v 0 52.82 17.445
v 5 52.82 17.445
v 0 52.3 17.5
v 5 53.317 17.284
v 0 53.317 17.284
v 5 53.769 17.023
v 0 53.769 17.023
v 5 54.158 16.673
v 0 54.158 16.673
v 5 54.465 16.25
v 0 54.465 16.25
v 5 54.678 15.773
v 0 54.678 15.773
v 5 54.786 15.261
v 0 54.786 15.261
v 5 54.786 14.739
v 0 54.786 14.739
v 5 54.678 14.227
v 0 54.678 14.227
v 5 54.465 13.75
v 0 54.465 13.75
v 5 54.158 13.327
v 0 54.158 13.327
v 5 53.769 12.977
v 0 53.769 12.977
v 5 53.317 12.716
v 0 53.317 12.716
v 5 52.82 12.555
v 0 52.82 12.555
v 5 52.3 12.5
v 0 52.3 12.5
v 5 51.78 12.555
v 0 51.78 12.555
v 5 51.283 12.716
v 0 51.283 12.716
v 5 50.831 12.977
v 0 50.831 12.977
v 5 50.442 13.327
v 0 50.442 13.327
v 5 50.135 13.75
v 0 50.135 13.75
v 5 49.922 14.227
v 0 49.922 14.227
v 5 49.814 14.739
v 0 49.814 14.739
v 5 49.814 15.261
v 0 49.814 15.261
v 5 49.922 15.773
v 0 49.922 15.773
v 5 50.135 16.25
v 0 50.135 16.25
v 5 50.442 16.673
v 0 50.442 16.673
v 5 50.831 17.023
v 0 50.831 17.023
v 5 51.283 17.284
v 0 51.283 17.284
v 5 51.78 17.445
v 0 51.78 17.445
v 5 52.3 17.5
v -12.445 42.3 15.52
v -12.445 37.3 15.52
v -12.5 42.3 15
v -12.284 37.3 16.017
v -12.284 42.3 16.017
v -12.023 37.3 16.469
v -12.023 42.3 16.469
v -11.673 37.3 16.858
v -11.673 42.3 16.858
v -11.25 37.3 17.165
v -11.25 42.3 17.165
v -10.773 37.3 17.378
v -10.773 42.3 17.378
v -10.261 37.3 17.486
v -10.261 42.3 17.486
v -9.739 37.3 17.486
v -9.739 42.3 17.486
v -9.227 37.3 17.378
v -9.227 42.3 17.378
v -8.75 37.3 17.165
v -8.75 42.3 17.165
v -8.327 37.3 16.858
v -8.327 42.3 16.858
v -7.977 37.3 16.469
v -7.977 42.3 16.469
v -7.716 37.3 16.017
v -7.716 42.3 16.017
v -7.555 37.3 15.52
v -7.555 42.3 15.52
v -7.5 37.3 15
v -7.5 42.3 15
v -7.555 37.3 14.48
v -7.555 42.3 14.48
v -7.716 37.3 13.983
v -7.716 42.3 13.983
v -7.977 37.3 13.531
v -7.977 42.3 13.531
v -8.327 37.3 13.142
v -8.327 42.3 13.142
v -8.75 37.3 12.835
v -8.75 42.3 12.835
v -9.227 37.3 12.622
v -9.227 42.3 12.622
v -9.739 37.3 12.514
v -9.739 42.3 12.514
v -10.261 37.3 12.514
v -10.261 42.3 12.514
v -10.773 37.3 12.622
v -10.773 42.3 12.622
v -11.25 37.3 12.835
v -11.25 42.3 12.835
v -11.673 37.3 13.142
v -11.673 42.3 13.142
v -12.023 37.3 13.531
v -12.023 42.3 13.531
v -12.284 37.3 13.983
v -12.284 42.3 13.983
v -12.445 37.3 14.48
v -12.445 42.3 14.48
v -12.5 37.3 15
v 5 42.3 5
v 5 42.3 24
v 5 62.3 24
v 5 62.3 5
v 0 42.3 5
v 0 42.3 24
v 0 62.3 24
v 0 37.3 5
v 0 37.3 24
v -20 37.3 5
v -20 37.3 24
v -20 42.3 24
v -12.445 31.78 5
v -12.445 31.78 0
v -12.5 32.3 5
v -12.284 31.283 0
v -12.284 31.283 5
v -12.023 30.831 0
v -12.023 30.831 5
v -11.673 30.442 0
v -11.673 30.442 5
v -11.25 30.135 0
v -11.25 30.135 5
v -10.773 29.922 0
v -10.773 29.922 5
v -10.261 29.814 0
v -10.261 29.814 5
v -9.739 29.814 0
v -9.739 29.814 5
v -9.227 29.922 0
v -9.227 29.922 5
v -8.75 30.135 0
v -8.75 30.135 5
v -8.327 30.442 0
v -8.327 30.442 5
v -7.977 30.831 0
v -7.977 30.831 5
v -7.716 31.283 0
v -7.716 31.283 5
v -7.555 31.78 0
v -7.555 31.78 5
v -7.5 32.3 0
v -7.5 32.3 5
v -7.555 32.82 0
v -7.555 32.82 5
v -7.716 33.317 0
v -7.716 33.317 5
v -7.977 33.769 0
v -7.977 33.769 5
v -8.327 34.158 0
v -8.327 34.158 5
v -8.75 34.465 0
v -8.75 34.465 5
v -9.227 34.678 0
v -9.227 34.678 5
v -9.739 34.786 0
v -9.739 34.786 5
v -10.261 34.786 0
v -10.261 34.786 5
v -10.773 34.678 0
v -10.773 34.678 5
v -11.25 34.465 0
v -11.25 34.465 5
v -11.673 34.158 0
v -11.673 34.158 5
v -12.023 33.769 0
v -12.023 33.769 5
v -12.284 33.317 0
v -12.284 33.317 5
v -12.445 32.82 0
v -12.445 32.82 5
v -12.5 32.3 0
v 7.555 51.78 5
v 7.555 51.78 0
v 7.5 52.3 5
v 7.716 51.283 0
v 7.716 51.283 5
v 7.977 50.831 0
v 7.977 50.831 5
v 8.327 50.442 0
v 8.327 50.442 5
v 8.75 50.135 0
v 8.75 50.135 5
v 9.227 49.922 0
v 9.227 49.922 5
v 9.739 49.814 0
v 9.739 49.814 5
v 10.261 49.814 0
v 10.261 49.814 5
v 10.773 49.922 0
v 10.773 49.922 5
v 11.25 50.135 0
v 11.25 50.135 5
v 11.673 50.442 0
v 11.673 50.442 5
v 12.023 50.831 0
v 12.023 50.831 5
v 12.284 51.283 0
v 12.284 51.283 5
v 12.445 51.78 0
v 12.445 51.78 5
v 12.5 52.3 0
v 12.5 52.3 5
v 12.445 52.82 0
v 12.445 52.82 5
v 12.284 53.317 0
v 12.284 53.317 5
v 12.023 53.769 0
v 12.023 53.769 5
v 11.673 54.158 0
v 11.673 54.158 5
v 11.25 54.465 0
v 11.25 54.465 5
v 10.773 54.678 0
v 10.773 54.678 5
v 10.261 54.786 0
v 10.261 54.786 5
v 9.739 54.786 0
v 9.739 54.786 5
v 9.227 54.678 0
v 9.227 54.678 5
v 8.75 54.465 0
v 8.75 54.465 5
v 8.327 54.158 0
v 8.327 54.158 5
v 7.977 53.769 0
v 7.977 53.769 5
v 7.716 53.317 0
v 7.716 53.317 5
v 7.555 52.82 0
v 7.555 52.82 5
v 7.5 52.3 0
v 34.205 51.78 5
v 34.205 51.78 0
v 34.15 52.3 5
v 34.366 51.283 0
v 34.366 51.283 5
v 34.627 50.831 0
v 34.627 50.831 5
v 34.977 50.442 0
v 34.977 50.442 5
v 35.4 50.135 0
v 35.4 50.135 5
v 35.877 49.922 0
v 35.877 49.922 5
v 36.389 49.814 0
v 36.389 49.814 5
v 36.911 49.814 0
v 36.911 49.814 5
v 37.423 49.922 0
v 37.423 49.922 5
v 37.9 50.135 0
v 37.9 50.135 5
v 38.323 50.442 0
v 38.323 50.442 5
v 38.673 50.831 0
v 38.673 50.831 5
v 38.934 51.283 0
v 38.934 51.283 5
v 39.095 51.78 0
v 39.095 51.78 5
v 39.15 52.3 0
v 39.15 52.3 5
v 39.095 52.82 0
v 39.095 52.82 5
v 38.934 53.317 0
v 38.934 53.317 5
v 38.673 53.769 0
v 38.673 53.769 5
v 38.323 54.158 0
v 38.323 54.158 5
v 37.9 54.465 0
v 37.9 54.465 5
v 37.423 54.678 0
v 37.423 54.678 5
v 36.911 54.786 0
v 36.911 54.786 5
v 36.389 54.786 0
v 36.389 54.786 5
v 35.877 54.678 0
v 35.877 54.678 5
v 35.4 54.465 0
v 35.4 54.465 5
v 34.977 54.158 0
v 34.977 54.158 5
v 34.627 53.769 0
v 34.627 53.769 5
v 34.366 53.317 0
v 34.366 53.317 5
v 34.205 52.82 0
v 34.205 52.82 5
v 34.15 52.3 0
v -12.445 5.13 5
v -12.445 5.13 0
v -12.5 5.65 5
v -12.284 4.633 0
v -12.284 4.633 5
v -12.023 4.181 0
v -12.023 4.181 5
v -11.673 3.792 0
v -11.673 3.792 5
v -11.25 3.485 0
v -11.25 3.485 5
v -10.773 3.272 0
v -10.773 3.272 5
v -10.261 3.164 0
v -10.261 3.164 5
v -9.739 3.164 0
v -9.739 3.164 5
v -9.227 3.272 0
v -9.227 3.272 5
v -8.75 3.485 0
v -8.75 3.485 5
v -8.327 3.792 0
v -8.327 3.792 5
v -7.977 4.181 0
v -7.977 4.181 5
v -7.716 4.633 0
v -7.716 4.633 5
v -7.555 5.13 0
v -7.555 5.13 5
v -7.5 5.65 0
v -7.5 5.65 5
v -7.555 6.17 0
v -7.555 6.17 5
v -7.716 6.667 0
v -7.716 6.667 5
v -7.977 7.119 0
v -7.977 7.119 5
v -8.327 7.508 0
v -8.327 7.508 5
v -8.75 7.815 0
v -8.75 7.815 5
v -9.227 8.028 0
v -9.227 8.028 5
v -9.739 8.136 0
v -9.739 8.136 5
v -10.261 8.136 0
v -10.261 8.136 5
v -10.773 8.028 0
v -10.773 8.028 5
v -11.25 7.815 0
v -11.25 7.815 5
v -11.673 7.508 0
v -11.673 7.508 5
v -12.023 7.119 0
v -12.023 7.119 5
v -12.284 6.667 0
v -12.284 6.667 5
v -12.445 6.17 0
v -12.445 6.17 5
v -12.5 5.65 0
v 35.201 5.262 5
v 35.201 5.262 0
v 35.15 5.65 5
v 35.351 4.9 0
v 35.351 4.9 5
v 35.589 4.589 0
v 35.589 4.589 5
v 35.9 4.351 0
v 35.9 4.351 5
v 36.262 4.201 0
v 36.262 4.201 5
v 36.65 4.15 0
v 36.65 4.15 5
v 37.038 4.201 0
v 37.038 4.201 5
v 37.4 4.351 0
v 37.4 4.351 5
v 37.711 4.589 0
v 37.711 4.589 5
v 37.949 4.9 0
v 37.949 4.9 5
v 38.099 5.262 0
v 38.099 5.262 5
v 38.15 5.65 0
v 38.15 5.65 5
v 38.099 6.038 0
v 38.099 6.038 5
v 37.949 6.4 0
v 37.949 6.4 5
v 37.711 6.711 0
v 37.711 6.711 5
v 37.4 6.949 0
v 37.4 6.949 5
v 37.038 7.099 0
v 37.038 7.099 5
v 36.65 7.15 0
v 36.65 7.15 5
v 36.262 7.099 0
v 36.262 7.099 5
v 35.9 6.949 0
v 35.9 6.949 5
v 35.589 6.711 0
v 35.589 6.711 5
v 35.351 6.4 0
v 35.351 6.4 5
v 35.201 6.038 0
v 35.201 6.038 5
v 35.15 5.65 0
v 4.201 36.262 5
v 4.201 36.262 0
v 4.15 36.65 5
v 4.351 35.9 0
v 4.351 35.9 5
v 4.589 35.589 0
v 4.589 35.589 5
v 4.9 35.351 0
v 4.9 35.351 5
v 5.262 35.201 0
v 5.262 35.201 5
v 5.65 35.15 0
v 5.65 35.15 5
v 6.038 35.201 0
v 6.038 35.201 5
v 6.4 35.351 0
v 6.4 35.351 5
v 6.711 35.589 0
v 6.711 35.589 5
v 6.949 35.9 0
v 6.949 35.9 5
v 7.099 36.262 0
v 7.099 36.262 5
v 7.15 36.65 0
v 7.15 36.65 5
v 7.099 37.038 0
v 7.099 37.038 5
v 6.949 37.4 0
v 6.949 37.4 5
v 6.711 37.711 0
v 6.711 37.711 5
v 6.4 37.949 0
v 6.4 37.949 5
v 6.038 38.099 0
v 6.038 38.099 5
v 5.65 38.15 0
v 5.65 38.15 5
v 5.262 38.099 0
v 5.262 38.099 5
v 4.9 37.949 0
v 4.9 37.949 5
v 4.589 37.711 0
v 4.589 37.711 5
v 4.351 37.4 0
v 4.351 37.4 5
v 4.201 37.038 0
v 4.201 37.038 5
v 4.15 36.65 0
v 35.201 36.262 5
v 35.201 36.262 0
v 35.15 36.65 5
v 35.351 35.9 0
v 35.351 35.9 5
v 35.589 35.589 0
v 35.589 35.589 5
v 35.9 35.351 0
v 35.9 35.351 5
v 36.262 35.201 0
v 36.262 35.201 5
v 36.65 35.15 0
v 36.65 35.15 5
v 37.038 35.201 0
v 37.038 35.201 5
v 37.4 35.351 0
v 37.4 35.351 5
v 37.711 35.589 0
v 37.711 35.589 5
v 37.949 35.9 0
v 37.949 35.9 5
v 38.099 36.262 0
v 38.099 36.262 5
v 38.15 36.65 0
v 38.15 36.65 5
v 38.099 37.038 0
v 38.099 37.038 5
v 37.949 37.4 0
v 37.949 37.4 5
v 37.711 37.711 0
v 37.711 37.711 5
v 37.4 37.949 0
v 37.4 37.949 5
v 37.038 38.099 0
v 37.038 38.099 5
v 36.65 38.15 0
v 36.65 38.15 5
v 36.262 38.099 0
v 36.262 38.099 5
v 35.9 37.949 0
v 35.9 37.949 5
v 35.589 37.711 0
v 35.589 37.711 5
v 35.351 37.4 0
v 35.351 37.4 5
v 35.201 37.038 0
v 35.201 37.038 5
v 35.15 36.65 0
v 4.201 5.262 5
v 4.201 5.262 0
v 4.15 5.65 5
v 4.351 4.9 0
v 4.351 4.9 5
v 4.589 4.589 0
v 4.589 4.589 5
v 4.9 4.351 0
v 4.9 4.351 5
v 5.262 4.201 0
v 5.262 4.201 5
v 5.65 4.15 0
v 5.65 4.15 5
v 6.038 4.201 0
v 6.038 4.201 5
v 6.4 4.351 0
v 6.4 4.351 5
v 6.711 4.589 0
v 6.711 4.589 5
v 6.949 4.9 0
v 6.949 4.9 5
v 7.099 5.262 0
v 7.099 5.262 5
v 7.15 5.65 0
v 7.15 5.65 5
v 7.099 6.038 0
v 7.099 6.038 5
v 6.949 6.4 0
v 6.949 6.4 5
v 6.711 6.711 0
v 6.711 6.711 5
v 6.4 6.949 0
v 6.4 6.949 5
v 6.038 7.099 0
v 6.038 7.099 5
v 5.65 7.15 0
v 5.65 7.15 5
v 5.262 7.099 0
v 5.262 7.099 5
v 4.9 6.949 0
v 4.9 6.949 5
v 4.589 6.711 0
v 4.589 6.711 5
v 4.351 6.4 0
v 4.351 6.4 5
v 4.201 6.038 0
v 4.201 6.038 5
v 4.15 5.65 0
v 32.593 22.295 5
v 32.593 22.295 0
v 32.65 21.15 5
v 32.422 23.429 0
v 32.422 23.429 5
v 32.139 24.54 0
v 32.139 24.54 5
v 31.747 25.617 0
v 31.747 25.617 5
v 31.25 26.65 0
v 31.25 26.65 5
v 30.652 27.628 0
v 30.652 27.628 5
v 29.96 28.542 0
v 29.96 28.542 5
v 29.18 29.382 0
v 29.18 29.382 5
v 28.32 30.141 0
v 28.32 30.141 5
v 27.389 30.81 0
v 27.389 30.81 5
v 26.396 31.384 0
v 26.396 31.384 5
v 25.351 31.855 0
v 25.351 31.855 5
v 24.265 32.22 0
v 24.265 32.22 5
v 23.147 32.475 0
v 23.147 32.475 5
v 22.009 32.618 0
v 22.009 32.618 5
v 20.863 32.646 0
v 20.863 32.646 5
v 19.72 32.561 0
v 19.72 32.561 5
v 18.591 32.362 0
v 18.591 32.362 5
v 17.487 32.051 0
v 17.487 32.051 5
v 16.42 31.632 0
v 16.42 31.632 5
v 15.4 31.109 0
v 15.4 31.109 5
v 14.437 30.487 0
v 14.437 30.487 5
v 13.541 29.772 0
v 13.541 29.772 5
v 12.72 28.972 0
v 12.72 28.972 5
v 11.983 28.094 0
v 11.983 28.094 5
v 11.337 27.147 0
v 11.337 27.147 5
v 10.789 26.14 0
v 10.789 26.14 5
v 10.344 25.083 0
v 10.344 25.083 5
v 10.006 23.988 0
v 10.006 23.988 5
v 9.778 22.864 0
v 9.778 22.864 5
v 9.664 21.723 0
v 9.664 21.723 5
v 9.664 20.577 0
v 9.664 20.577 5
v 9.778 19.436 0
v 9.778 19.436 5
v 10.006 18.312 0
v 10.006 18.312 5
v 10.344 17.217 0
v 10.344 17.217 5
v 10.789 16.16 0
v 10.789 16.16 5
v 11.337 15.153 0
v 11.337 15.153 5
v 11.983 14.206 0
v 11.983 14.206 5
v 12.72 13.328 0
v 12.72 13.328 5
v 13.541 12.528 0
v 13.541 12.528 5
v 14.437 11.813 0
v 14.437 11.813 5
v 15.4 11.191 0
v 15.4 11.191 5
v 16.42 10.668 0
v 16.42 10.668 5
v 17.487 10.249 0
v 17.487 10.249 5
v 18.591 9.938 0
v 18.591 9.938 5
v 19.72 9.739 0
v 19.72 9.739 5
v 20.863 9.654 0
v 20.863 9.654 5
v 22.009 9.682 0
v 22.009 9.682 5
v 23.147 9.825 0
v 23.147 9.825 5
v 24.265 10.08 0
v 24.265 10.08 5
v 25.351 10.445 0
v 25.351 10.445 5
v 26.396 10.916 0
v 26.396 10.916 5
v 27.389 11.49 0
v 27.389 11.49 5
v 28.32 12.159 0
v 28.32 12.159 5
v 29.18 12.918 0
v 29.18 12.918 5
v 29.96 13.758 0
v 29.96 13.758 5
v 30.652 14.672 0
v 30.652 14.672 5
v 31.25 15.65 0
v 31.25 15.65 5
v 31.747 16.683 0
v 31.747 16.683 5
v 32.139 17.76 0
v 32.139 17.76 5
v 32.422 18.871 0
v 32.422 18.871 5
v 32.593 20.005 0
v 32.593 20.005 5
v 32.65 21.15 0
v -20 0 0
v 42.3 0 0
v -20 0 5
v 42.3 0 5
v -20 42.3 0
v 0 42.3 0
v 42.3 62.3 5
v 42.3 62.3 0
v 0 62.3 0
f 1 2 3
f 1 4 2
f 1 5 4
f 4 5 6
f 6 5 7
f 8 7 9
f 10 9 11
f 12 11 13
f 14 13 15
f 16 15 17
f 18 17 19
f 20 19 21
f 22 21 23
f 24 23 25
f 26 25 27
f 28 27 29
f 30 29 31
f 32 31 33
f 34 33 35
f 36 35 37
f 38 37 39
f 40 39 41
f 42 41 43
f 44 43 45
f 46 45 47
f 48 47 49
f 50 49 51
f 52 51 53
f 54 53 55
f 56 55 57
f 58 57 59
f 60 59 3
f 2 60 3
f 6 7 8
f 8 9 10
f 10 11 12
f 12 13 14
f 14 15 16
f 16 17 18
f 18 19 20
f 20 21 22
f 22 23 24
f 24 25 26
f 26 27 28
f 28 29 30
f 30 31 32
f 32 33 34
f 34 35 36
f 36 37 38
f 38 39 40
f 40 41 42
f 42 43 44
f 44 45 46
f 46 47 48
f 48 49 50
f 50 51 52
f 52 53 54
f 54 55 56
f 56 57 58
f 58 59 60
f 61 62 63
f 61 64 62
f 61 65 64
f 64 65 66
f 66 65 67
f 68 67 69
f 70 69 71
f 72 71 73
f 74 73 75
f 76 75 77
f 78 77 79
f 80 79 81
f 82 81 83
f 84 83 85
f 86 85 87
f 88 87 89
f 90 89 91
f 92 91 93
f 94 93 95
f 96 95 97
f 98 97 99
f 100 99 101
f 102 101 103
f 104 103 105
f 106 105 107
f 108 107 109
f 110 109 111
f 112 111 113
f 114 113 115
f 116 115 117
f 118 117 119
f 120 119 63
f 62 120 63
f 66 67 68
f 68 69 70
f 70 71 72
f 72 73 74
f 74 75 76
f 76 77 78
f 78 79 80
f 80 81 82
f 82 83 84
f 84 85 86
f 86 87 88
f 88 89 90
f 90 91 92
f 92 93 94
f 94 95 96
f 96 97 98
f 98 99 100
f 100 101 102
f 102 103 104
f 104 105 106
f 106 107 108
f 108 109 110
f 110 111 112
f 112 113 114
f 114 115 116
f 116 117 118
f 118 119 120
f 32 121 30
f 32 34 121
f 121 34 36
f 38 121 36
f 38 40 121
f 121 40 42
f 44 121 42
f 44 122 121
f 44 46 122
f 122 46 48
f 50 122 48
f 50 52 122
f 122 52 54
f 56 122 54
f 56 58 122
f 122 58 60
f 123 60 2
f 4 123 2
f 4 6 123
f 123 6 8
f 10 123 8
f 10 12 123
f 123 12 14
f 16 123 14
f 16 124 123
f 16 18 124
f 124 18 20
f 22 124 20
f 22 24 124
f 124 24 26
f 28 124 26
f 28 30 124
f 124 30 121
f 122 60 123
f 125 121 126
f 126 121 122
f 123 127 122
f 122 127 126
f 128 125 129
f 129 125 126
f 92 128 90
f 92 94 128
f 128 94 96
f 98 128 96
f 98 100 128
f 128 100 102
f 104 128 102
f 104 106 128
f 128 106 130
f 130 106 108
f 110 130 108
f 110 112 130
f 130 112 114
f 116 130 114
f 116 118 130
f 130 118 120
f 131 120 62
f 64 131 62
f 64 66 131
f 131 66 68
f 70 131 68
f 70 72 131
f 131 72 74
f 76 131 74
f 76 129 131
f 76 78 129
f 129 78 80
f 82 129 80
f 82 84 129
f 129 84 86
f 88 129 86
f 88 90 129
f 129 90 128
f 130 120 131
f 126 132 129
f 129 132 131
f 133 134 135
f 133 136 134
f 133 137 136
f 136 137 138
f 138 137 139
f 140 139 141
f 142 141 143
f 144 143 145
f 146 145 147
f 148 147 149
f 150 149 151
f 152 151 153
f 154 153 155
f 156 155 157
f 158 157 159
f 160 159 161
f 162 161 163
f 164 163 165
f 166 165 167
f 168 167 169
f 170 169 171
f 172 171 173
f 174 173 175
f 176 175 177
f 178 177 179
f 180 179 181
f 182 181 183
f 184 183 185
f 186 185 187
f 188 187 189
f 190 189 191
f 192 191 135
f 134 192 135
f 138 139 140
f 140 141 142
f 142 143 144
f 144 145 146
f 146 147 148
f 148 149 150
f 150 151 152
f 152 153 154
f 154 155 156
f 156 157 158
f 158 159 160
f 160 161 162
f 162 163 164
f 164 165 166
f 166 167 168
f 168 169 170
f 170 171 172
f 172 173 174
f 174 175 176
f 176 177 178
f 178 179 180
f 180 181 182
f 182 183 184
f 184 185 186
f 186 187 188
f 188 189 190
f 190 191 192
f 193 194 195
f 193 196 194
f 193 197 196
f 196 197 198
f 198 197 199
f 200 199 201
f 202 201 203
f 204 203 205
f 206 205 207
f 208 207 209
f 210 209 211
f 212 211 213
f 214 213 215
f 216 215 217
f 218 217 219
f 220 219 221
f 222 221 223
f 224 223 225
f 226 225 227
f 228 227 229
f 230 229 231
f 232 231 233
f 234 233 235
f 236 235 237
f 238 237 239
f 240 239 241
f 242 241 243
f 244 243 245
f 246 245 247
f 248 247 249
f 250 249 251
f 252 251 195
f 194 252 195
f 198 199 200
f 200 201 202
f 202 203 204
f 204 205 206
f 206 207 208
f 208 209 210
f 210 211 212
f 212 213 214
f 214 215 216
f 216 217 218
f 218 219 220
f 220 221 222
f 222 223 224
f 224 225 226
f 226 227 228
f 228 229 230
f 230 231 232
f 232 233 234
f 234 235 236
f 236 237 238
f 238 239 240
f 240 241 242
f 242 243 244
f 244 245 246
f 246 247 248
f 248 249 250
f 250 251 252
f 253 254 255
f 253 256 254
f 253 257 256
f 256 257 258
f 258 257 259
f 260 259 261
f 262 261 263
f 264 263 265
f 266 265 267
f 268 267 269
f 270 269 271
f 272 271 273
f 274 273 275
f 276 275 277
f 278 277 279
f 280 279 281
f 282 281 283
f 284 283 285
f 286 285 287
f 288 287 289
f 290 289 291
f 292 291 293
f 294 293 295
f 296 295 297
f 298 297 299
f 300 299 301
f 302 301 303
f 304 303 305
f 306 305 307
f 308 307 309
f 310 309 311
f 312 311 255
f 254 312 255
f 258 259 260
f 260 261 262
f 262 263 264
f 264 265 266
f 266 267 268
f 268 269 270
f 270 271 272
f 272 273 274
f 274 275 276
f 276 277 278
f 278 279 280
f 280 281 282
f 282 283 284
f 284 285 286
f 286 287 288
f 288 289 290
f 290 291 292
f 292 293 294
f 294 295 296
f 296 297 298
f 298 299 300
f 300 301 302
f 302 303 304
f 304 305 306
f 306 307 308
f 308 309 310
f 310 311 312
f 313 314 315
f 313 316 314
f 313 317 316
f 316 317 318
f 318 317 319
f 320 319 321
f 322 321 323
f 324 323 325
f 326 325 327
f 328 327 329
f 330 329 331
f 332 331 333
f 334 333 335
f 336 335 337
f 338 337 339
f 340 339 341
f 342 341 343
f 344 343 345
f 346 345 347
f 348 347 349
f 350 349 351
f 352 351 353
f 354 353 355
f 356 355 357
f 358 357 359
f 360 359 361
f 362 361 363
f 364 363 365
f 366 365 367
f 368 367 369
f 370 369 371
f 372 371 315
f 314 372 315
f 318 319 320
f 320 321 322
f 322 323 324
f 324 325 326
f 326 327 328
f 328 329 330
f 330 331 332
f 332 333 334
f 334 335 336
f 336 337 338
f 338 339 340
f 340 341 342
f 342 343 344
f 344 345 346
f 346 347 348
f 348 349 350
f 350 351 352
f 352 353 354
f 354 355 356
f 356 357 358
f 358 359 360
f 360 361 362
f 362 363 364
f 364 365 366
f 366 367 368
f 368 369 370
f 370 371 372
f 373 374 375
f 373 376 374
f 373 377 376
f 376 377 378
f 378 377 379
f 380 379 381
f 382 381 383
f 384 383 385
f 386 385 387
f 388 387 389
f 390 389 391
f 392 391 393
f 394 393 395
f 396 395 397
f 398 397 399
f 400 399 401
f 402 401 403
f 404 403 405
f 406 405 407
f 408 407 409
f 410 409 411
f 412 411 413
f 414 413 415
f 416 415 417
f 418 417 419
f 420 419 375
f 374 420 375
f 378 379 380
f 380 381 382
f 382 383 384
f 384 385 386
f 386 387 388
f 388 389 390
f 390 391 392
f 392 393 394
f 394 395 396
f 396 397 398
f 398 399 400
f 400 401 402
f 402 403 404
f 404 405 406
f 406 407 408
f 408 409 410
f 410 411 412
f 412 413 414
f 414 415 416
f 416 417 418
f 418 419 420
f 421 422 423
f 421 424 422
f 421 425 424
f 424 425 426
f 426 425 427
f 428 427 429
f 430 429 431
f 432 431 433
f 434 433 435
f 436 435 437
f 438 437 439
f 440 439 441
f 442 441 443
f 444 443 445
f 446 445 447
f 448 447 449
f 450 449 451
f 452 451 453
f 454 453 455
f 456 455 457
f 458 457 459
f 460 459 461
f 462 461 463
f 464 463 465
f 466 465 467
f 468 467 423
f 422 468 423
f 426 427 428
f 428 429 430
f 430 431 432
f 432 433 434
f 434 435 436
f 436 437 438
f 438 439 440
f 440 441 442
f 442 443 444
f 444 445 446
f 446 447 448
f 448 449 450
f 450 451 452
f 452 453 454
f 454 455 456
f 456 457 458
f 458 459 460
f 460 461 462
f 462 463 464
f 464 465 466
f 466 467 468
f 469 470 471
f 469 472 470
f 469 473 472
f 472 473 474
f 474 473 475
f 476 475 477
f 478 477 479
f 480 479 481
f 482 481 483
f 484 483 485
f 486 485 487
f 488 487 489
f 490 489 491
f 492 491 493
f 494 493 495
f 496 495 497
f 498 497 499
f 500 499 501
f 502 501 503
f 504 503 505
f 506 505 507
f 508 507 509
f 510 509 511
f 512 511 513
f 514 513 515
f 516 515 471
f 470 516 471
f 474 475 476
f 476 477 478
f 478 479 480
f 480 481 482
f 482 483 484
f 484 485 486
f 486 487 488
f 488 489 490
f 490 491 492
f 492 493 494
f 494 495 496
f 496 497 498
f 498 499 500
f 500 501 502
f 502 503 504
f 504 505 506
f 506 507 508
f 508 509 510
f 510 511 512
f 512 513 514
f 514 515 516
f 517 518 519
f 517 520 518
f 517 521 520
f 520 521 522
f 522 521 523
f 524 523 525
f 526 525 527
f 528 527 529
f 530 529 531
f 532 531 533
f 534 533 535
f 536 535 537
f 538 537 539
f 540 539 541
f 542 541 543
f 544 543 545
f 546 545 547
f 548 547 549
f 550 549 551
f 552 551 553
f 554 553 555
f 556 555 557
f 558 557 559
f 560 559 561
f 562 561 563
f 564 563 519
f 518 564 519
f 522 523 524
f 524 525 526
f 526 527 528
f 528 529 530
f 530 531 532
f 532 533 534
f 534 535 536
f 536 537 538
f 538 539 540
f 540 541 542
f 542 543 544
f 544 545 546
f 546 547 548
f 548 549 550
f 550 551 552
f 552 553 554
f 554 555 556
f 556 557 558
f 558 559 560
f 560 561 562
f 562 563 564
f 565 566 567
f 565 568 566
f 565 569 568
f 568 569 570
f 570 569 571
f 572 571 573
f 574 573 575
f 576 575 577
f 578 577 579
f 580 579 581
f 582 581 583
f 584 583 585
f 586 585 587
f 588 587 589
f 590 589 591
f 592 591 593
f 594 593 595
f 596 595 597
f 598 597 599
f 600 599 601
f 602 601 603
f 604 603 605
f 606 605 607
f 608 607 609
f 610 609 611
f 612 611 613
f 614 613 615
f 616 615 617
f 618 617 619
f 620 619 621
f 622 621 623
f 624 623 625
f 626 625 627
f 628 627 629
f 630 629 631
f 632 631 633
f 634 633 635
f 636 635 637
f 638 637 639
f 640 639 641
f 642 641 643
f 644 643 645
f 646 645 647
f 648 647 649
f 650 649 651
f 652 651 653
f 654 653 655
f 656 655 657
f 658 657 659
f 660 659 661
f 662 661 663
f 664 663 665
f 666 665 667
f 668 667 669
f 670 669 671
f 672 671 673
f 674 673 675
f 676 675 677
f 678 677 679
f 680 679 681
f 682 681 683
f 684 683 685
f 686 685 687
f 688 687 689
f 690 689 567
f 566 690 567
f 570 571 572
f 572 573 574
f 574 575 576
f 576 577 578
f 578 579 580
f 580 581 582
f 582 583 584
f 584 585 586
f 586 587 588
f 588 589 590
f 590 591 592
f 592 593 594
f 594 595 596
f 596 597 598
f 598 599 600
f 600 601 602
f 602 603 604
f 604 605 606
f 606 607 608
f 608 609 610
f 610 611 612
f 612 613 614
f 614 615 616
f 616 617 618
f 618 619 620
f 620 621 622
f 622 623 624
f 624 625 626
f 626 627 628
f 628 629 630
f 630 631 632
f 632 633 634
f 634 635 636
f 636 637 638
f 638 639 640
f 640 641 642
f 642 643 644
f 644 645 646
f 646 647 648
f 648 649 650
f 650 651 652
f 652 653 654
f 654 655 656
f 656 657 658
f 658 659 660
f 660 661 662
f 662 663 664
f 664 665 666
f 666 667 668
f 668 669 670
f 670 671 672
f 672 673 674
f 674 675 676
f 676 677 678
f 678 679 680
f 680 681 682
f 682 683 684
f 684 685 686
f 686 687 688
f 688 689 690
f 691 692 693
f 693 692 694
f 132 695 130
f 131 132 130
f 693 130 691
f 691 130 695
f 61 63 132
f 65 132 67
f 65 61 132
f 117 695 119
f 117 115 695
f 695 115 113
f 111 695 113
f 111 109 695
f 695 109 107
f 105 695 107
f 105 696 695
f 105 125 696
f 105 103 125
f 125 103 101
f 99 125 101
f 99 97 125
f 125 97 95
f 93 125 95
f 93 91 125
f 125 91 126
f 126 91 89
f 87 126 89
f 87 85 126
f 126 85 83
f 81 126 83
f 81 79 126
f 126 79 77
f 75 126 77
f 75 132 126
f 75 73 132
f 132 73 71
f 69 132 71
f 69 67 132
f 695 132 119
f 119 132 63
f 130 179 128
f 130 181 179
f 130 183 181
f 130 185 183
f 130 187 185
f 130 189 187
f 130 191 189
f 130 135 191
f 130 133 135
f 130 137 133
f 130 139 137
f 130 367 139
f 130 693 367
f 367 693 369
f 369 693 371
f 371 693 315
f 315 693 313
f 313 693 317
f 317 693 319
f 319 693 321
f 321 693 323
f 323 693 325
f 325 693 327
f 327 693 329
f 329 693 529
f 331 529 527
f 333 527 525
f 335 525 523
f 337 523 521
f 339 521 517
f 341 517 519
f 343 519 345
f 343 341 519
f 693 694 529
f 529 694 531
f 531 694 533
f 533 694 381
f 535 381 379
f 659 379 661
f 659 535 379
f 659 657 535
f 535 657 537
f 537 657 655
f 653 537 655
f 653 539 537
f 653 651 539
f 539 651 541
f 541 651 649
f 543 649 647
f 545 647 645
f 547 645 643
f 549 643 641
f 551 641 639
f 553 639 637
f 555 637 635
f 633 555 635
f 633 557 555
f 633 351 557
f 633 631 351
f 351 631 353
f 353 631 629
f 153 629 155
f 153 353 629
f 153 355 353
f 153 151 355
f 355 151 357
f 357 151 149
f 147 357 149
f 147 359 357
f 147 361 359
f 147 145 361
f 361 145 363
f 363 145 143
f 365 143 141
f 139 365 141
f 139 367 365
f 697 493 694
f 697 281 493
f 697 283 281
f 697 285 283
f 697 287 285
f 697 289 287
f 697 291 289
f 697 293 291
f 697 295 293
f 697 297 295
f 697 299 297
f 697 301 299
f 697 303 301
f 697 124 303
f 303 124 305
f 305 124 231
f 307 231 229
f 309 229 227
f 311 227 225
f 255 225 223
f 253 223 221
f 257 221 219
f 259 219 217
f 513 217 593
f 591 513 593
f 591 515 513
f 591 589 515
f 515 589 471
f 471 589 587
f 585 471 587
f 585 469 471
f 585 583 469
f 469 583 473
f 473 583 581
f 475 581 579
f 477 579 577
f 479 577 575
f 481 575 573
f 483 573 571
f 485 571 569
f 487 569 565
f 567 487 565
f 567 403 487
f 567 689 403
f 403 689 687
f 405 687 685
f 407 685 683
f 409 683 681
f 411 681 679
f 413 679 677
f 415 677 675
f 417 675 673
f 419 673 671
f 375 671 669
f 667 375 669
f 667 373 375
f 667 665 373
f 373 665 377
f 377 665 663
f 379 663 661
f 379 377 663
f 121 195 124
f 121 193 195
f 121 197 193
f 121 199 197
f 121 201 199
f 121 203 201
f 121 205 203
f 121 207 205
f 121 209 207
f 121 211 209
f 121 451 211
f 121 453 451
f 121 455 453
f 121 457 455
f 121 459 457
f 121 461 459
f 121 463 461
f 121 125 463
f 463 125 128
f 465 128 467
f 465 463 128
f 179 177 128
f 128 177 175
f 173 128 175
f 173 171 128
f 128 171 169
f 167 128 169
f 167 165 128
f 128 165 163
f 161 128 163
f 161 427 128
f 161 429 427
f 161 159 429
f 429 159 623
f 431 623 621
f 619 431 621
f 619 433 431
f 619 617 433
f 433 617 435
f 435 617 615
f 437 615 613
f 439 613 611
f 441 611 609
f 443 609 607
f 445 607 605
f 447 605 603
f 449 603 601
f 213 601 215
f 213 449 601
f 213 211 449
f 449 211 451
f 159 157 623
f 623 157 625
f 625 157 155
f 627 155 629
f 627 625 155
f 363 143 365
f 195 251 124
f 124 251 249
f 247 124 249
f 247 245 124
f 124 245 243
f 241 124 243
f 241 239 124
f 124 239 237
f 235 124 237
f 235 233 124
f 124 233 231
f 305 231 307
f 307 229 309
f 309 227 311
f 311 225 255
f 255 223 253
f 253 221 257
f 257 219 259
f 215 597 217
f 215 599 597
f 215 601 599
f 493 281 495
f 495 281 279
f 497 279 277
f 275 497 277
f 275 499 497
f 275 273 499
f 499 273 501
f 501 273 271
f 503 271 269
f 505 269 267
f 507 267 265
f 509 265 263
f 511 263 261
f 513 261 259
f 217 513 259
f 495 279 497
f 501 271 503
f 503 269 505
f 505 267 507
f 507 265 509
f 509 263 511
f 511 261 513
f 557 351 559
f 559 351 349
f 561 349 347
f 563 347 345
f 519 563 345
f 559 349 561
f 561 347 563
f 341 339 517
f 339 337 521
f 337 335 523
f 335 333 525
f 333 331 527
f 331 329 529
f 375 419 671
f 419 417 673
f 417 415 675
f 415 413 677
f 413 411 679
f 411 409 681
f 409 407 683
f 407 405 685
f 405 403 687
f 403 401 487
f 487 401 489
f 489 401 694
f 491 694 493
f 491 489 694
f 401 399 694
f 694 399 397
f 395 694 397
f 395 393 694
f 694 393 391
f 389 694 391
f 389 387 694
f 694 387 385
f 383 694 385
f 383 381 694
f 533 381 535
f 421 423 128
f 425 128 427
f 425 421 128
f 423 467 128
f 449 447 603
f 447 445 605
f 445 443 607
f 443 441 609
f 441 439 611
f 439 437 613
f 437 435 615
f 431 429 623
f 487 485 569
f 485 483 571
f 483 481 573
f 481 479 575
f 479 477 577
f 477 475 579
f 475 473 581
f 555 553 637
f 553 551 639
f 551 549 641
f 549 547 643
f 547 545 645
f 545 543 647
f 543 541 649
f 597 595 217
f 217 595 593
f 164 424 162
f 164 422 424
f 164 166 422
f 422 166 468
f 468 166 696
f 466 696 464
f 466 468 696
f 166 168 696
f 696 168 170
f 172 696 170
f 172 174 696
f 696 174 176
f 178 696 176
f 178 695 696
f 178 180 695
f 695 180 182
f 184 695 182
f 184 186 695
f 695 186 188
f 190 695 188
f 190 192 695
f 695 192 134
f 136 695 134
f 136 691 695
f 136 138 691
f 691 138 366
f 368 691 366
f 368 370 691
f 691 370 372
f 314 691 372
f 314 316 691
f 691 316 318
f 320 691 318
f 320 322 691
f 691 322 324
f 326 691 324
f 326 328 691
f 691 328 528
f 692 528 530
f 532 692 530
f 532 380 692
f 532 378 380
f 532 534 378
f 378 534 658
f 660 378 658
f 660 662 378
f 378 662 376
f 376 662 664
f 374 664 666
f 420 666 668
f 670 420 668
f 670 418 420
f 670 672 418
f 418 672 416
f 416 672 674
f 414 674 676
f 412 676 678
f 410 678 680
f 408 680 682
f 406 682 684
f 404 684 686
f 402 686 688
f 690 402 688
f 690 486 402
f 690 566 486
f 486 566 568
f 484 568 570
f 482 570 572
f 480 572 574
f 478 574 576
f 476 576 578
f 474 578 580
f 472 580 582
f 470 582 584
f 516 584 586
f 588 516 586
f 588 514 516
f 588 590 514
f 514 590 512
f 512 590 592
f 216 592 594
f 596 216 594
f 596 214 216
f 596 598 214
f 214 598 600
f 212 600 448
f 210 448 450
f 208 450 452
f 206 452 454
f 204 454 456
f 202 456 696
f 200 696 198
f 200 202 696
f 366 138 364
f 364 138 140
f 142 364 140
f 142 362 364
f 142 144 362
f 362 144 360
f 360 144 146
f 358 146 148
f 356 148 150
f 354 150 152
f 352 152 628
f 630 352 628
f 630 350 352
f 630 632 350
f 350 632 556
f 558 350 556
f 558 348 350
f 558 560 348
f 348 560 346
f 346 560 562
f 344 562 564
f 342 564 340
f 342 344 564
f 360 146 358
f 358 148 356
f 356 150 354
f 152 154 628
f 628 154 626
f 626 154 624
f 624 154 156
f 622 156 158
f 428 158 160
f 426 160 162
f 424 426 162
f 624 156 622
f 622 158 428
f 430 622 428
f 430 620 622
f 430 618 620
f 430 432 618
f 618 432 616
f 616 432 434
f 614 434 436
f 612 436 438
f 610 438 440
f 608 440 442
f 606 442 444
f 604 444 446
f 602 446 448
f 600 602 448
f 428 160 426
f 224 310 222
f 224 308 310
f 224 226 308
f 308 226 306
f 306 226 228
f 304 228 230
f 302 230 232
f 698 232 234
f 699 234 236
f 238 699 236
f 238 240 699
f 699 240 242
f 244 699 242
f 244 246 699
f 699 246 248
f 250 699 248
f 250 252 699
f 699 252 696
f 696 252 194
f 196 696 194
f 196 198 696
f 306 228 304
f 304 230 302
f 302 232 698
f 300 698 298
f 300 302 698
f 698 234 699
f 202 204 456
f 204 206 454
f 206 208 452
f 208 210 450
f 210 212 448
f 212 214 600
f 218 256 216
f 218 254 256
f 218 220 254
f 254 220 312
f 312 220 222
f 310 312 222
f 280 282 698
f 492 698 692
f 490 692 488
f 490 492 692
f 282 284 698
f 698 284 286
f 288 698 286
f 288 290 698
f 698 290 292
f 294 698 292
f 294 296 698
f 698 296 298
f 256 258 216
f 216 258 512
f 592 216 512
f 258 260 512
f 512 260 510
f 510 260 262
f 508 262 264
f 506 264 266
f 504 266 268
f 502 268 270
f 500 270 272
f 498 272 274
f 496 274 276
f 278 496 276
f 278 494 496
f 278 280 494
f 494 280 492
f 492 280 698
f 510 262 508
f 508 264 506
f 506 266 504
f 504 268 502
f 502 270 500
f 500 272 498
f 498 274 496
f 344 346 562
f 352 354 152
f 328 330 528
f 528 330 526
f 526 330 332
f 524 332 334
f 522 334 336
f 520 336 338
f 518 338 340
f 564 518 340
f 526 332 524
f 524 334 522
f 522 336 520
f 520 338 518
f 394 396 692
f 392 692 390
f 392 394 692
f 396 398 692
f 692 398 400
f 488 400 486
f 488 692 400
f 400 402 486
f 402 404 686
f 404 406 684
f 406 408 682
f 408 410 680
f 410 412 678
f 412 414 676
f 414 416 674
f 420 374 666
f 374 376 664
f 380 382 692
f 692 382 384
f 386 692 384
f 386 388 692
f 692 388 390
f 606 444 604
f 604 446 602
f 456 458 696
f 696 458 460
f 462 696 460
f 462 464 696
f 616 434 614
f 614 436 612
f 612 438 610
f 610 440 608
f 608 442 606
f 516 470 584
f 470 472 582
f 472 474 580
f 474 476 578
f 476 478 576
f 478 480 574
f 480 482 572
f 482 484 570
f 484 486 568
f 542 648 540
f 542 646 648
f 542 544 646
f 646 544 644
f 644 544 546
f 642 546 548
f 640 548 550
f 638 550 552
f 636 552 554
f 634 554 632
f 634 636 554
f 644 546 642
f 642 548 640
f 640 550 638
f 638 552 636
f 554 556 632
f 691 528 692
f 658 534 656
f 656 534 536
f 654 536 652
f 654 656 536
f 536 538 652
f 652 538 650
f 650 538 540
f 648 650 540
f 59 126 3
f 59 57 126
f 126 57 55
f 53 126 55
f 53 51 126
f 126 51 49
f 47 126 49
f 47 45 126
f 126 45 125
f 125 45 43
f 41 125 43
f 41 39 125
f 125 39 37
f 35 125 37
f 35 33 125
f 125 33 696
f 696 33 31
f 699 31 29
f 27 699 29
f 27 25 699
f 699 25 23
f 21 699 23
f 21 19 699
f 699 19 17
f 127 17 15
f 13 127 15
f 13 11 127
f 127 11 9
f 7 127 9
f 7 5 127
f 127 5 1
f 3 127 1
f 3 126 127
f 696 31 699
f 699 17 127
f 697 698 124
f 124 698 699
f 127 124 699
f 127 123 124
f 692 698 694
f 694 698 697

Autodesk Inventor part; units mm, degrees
ref_plane "YZ Plane" through (0, 0, 0) normal (1, 0, 0) x (0, 1, 0)
ref_plane "XZ Plane" through (0, 0, 0) normal (0, 1, 0) x (-1, 0, 0)
ref_plane "XY Plane" through (0, 0, 0) normal (0, 0, 1) x (1, 0, 0)
sketch "Sketch1" plane through (0, 0, 0) normal (0, 0, 1) x (1, 0, 0)
  line L0 (0, 0) -> (42.3, 0)
  line L1 (42.3, 0) -> (42.3, 42.3)
  line L2 (42.3, 42.3) -> (0, 42.3)
  line L3 (0, 42.3) -> (0, 0)
  circle A0 centre (21.15, 21.15) radius 11.5
  line L4 (0, 0.3) -> (0, 42.3)
  line L5 (0, 42.3) -> (42.3, 42.3)
  line L6 (0, 42.3) -> (42.3, 42.3)
  line L7 (42.3, 42.3) -> (42.3, 62.3)
  line L8 (42.3, 62.3) -> (0, 62.3)
  line L9 (0, 62.3) -> (0, 42.3)
  line L10 (0, 42.3) -> (-20, 42.3)
  line L11 (-20, 42.3) -> (-20, 0)
  line L12 (-20, 0) -> (0, 0)
  line L13 (0, 0) -> (0, 42.3)
  point P0 (5.65, 36.65)
  point P1 (36.65, 36.65)
  point P2 (36.65, 5.65)
  point P3 (5.65, 5.65)
  point P4 (10, 52.3)
  point P5 (36.65, 52.3)
  point P6 (-10, 32.3)
  point P7 (-10, 5.65)
  dimension "d0" = 42.3
  dimension "d1" = 23
  dimension "d2" = 31
  dimension "d3" = 31
  dimension "d4" = 31
  dimension "d8" = 31
  dimension "d12" = 21.15
  dimension "d16" = 42.3
  dimension "d17" = 5.65
  dimension "d18" = 5.65
  dimension "d19" = 5.65
  dimension "d20" = 5.65
  dimension "d21" = 20
  dimension "d22" = 20
  dimension "d39" = 21.15
  dimension "d42" = 10
  dimension "d43" = 10
extrude "Extrusion1" add sketch "Sketch1" along normal blind 5
hole "Hole1" at (5.65, 36.65, 0) at (36.65, 36.65, 0) at (36.65, 5.65, 0) at (5.65, 5.65, 0) direction (0, 0, 1) diameter 3 depth 8 tip angle 118
hole "Hole2" at (10, 52.3, 0) at (36.65, 52.3, 0) at (-10, 32.3, 0) at (-10, 5.65, 0) direction (0, 0, 1) diameter 5 depth 8 tip angle 118
sketch "Sketch3" plane through (0, 0, 5) normal (0, 0, 1) x (1, 0, 0)
  line L0 (-20, 42.3) -> (0, 42.3)
  line L1 (0, 42.3) -> (0, 37.3)
  line L2 (0, 37.3) -> (-20, 37.3)
  line L3 (-20, 37.3) -> (-20, 42.3)
  line L4 (0, 62.3) -> (5, 62.3)
  line L5 (5, 62.3) -> (5, 42.3)
  line L6 (5, 42.3) -> (0, 42.3)
  line L7 (0, 42.3) -> (0, 62.3)
  point P0 (0, 0)
  dimension "d40" = 5
  dimension "d41" = 5
extrude "Extrusion2" add sketch "Sketch3" along normal blind 19
sketch "Sketch4" plane through (-20, 37.3, 5) normal (0, -1, 0) x (1, 0, 0)
  line L0 (0, 0) -> (62.3, 0) projected
  line L1 (0, 0) -> (0, 19) projected
  line L2 (0, 19) -> (20, 19) projected
  point P0 (20, -5)
  point P1 (10, 10)
  dimension "d46" = 10
  dimension "d47" = 10
hole "Hole3" at (-10, 37.3, 15) direction (0, 1, 0) diameter 5 depth 8 tip angle 118
sketch "Sketch5" plane through (5, 42.3, 5) normal (1, 0, 0) x (0, 0, -1)
  line L0 (-19, 0) -> (-19, 20) projected
  line L1 (0, -42.3) -> (0, 20) projected
  line L2 (0, 20) -> (-19, 20) projected
  point P0 (5, -42.3)
  point P1 (-10, 10)
  dimension "d58" = 10
  dimension "d59" = 10
hole "Hole4" at (5, 52.3, 15) direction (-1, 0, 0) diameter 5 depth 8 tip angle 118
properties part number "Motor Mount"
